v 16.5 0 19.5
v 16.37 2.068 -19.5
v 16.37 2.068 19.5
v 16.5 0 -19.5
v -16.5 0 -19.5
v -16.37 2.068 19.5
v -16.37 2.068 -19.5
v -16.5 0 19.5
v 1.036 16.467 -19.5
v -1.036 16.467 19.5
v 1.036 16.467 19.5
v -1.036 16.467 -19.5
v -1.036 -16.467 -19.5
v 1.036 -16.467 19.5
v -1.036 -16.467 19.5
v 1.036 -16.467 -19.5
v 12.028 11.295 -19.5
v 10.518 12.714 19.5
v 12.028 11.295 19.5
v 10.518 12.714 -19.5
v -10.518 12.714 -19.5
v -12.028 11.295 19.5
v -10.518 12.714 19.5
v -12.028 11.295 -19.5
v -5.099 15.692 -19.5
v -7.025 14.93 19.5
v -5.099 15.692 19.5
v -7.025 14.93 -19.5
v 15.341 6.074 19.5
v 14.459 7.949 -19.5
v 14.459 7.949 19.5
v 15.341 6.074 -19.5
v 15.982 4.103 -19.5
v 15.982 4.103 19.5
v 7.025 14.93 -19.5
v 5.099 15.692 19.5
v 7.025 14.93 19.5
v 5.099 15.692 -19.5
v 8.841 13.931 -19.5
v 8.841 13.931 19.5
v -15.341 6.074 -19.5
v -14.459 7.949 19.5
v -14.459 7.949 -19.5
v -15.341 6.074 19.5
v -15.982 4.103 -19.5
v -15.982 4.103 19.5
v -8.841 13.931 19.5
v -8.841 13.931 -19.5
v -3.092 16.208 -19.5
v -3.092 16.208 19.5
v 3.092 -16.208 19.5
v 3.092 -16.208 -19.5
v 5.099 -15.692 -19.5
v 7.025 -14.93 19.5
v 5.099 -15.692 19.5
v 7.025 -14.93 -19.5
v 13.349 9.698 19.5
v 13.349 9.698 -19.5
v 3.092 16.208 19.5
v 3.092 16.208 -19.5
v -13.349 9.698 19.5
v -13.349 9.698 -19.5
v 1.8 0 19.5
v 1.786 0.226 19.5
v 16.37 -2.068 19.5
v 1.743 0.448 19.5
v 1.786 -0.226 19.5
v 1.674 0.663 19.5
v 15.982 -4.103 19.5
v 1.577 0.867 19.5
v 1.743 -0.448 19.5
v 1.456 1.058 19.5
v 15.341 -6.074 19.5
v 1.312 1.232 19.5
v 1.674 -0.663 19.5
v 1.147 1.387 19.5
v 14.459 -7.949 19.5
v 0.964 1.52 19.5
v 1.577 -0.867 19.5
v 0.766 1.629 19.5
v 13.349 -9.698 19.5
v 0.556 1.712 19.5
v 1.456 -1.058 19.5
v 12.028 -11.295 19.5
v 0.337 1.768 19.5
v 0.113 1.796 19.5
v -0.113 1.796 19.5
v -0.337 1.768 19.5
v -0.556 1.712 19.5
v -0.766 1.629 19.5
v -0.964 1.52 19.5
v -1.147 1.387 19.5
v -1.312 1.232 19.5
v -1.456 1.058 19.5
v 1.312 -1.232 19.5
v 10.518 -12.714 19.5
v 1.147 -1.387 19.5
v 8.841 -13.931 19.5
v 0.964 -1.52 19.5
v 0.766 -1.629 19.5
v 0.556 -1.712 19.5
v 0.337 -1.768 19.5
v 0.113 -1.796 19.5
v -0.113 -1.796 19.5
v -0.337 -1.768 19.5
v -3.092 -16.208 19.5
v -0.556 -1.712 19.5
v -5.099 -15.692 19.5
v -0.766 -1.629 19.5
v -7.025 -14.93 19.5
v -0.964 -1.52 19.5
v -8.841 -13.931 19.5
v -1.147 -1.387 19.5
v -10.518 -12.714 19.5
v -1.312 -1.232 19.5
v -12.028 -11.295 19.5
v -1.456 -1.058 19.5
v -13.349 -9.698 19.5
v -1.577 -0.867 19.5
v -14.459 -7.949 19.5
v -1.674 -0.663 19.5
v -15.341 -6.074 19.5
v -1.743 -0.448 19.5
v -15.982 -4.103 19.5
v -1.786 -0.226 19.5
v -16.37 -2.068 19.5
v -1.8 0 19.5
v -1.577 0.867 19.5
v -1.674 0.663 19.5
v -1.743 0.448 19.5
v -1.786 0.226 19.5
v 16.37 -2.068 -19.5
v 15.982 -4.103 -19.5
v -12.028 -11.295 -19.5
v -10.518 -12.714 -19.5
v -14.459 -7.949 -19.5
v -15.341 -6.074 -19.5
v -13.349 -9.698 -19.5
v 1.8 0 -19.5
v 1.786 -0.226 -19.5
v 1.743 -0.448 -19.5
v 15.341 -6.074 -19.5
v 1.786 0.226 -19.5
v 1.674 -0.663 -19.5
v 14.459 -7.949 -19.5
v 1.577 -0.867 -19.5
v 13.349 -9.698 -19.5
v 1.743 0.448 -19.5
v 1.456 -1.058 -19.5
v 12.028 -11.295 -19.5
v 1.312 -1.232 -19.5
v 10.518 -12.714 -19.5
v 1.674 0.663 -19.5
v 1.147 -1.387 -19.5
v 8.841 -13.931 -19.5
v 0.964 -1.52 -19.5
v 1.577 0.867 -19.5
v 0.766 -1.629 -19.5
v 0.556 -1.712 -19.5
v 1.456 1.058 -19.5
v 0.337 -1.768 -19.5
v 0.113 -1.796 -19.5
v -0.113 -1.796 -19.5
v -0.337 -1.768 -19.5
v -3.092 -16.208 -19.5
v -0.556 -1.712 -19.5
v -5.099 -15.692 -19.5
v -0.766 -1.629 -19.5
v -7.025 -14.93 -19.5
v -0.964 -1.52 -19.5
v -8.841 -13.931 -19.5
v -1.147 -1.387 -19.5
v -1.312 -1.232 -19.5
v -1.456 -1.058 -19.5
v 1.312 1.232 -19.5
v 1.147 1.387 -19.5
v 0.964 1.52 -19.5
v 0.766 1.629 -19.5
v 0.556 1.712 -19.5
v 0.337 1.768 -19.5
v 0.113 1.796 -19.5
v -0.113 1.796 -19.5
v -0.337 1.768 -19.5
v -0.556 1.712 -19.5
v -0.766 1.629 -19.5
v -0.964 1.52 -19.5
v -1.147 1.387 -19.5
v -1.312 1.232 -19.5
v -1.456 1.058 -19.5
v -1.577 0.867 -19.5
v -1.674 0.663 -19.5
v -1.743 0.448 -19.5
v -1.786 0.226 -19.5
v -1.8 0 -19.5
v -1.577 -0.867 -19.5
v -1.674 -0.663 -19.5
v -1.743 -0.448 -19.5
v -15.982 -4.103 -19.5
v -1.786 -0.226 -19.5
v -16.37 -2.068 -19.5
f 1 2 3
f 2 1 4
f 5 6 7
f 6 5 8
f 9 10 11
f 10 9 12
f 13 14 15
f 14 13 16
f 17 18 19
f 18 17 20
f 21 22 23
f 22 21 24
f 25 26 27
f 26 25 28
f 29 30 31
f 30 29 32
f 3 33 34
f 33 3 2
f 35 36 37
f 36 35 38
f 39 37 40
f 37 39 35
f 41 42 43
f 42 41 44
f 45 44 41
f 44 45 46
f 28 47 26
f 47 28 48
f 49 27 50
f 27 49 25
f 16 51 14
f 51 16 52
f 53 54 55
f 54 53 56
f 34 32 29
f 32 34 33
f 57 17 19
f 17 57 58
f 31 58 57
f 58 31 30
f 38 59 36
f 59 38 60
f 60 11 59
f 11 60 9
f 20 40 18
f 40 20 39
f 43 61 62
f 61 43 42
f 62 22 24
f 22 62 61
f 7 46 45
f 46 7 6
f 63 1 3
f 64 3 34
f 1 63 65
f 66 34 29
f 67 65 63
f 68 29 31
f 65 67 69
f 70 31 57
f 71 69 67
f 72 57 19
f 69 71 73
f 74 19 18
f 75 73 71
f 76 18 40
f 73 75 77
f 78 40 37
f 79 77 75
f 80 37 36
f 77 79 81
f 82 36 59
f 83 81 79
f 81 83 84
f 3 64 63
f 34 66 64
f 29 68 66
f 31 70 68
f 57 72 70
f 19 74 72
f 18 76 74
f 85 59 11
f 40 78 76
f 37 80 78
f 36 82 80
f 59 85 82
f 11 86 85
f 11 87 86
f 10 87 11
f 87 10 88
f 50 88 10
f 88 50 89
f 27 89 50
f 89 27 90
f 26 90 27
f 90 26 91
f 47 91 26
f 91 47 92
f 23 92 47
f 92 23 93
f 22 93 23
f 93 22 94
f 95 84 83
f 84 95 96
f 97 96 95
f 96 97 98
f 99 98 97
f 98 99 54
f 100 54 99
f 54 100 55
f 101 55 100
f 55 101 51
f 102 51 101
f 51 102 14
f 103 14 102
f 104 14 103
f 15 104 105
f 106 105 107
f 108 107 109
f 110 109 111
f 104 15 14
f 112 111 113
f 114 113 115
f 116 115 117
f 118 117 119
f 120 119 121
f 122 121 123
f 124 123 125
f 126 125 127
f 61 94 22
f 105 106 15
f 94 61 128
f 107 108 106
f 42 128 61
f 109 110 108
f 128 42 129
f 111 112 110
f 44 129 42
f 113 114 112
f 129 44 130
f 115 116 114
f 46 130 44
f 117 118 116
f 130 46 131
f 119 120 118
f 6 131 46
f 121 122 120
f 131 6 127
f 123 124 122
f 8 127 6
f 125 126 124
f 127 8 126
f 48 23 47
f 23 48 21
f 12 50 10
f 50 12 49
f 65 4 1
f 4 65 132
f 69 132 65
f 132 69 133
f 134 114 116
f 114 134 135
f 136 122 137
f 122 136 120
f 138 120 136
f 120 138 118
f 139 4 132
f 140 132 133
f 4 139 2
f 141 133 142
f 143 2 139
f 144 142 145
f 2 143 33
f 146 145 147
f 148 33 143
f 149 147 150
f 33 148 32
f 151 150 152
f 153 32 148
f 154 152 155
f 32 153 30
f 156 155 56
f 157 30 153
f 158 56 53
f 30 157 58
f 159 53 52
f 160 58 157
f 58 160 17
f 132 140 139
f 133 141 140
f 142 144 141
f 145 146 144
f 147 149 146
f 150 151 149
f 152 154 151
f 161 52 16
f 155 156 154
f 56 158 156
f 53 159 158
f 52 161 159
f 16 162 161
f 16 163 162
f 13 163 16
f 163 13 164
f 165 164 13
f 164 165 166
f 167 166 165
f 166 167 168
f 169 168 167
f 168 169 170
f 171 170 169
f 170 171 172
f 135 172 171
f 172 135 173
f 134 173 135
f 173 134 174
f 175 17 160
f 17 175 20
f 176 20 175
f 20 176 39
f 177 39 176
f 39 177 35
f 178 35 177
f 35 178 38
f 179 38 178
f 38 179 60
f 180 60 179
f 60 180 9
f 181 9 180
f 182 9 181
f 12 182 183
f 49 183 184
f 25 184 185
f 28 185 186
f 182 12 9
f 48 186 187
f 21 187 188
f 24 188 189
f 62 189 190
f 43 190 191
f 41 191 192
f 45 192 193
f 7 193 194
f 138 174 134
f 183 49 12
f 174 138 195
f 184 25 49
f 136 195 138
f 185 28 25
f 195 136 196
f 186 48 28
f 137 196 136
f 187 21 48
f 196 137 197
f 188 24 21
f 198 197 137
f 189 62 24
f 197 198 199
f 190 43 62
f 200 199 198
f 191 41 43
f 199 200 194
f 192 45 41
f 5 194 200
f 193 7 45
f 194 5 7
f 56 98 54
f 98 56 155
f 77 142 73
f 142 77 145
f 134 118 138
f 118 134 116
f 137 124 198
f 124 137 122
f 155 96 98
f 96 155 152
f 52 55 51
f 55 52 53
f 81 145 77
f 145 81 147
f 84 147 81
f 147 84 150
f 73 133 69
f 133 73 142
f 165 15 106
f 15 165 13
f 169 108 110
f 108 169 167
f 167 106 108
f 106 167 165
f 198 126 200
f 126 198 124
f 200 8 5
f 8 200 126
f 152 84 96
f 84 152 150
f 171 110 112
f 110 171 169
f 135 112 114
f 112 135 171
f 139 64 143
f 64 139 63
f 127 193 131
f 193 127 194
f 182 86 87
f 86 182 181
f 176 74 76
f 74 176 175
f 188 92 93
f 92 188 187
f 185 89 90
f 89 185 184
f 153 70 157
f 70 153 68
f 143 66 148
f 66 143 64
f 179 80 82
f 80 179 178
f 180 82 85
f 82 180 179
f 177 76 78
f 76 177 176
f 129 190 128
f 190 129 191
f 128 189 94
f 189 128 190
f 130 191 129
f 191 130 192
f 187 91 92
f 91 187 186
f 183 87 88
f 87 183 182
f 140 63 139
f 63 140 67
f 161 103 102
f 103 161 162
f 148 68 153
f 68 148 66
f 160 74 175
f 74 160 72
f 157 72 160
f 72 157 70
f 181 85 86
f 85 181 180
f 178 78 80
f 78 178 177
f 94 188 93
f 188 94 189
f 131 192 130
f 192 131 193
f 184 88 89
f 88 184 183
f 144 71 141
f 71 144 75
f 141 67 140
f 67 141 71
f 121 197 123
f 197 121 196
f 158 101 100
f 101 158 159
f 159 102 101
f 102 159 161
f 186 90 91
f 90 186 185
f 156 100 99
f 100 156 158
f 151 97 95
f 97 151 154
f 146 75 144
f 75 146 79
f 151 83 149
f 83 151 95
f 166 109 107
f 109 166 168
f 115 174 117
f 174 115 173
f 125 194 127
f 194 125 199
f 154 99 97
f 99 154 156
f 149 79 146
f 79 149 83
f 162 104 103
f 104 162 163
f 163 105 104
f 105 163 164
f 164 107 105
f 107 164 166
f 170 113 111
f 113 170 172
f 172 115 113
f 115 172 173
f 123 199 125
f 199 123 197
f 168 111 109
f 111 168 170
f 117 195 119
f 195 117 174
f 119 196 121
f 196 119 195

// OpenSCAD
$fn = 50;


difference() {
	union() {
		translate(v = [0, 0, -19.5000000000]) {
			cylinder(h = 39, r = 16.5000000000);
		}
	}
	union() {
		translate(v = [0, 0, -100.0000000000]) {
			cylinder(h = 200, r = 1.8000000000);
		}
	}
}
